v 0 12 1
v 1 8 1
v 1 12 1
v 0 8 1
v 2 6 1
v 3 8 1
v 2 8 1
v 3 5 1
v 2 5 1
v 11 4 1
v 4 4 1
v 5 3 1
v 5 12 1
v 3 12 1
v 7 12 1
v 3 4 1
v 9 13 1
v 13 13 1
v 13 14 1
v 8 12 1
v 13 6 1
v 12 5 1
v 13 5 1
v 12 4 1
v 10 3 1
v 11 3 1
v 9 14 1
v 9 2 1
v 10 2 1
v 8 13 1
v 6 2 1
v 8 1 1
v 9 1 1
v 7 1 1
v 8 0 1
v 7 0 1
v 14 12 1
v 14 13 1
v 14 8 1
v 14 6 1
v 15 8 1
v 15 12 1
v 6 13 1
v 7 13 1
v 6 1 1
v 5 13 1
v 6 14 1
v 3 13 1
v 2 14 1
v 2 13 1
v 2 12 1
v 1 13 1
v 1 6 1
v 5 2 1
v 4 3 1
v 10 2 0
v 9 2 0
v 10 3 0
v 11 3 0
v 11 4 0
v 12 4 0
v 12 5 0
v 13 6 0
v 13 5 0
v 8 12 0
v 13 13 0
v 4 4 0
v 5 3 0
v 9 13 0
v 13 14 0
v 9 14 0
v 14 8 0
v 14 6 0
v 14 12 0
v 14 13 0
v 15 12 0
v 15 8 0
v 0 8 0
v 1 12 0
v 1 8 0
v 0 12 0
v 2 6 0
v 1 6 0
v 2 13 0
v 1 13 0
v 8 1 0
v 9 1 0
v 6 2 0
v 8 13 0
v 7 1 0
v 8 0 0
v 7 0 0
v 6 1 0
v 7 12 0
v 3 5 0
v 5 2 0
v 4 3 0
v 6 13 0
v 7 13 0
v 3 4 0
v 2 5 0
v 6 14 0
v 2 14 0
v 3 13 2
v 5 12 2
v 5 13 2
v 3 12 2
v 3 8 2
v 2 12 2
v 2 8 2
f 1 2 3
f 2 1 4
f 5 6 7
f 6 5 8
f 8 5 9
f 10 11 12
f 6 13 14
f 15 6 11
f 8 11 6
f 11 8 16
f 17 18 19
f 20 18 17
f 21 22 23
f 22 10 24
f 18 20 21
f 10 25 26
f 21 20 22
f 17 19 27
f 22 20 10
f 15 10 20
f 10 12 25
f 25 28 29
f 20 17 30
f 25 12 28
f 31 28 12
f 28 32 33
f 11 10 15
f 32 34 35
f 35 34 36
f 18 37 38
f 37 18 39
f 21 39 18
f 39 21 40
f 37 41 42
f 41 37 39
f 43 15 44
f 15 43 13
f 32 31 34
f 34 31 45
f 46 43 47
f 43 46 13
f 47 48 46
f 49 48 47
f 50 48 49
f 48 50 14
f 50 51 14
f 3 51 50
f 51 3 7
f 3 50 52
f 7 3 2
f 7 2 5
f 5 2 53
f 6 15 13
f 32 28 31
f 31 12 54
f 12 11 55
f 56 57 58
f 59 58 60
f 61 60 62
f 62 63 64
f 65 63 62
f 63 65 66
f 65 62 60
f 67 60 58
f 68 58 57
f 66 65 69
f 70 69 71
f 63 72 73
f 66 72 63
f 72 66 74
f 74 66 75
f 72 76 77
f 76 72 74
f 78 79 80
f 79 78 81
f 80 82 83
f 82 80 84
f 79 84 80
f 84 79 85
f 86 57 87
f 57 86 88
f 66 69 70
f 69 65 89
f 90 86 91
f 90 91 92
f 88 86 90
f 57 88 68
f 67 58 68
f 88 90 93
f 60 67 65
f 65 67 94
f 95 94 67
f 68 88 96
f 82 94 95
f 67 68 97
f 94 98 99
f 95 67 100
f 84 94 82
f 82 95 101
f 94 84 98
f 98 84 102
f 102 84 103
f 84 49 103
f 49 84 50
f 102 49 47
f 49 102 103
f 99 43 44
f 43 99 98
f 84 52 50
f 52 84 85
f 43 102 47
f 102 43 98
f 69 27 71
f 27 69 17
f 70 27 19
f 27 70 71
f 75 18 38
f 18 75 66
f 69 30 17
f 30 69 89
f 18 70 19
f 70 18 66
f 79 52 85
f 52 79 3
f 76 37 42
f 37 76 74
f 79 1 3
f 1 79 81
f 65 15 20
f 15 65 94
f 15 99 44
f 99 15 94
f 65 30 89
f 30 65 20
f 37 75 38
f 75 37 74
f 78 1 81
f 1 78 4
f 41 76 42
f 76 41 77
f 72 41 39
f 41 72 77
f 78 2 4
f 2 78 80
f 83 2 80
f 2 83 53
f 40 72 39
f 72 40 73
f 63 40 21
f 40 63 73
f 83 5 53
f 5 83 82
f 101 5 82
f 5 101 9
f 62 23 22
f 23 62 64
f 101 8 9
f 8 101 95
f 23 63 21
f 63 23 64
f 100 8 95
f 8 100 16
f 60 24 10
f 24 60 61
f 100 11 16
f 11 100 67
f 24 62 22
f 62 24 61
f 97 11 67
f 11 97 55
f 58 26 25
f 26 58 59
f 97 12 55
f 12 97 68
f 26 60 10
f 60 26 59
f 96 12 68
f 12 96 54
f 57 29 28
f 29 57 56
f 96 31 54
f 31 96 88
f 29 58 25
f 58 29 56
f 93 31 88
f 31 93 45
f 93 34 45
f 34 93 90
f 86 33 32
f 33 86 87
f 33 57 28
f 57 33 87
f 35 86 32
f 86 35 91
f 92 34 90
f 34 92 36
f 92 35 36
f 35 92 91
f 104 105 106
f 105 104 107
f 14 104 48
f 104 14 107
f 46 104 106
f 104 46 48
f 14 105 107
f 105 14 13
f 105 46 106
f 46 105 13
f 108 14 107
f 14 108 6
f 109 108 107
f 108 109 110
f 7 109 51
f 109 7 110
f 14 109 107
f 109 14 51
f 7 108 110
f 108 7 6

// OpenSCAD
/*
 * 3D Pixel Art - Heart 4
 * Copyright (c) 2019 Anar Software LLC. < http://anars.com >
 *
 * This program is free software: you can redistribute it and/or modify it under
 * the terms of the GNU General Public License as published by the Free Software
 * Foundation, either version 3 of the License, or (at your option) any later
 * version.
 *
 * This program is distributed in the hope that it will be useful, but WITHOUT
 * ANY WARRANTY; without even the implied warranty of MERCHANTABILITY or FITNESS
 * FOR A PARTICULAR PURPOSE. See the GNU General Public License for more details.
 *
 * You should have received a copy of the GNU General Public License along with
 * this program. If not, see < http://www.gnu.org/licenses/ >
 *
 */

/* [Global] */

/* [Pixel Settings] */

// Pixel Length (X)
pixel_length = 1;

// Pixel Width (Y)
pixel_width = 1;

// Pixel Height (Z)
pixel_height = 1;

/* [Hidden] */

data=[[
     "  XXXX   XXXX",
     " XXXXXX XXXXXX",
     "XXXXXXXXXXXXXXX",
     "XXXXXXXXXXXXXXX",
     "XXXXXXXXXXXXXXX",
     "XXXXXXXXXXXXXXX",
     " XXXXXXXXXXXXX",
     " XXXXXXXXXXXXX",
     "  XXXXXXXXXXX",
     "   XXXXXXXXX",
     "    XXXXXXX",
     "     XXXXX",
     "      XXX",
     "       X"
     ],[
     "   XX",
     "  X",
     "  X",
     "  X",
     "  X",
     "",
     "",
     "",
     "",
     "",
     "",
     "",
     ""]];

for (z = [0 : len(data) - 1])
    for (y = [0 : len(data[z]) - 1])
        if (len(data[z][y]) > 0)
            for (x = [0 : len(data[z][y]) - 1])
                if (data[z][y][x] == "X")
                    translate([x * pixel_length, (len(data[z]) - 1 - y) * pixel_width, z * pixel_height])
                        cube([pixel_length, pixel_width, pixel_height]);
